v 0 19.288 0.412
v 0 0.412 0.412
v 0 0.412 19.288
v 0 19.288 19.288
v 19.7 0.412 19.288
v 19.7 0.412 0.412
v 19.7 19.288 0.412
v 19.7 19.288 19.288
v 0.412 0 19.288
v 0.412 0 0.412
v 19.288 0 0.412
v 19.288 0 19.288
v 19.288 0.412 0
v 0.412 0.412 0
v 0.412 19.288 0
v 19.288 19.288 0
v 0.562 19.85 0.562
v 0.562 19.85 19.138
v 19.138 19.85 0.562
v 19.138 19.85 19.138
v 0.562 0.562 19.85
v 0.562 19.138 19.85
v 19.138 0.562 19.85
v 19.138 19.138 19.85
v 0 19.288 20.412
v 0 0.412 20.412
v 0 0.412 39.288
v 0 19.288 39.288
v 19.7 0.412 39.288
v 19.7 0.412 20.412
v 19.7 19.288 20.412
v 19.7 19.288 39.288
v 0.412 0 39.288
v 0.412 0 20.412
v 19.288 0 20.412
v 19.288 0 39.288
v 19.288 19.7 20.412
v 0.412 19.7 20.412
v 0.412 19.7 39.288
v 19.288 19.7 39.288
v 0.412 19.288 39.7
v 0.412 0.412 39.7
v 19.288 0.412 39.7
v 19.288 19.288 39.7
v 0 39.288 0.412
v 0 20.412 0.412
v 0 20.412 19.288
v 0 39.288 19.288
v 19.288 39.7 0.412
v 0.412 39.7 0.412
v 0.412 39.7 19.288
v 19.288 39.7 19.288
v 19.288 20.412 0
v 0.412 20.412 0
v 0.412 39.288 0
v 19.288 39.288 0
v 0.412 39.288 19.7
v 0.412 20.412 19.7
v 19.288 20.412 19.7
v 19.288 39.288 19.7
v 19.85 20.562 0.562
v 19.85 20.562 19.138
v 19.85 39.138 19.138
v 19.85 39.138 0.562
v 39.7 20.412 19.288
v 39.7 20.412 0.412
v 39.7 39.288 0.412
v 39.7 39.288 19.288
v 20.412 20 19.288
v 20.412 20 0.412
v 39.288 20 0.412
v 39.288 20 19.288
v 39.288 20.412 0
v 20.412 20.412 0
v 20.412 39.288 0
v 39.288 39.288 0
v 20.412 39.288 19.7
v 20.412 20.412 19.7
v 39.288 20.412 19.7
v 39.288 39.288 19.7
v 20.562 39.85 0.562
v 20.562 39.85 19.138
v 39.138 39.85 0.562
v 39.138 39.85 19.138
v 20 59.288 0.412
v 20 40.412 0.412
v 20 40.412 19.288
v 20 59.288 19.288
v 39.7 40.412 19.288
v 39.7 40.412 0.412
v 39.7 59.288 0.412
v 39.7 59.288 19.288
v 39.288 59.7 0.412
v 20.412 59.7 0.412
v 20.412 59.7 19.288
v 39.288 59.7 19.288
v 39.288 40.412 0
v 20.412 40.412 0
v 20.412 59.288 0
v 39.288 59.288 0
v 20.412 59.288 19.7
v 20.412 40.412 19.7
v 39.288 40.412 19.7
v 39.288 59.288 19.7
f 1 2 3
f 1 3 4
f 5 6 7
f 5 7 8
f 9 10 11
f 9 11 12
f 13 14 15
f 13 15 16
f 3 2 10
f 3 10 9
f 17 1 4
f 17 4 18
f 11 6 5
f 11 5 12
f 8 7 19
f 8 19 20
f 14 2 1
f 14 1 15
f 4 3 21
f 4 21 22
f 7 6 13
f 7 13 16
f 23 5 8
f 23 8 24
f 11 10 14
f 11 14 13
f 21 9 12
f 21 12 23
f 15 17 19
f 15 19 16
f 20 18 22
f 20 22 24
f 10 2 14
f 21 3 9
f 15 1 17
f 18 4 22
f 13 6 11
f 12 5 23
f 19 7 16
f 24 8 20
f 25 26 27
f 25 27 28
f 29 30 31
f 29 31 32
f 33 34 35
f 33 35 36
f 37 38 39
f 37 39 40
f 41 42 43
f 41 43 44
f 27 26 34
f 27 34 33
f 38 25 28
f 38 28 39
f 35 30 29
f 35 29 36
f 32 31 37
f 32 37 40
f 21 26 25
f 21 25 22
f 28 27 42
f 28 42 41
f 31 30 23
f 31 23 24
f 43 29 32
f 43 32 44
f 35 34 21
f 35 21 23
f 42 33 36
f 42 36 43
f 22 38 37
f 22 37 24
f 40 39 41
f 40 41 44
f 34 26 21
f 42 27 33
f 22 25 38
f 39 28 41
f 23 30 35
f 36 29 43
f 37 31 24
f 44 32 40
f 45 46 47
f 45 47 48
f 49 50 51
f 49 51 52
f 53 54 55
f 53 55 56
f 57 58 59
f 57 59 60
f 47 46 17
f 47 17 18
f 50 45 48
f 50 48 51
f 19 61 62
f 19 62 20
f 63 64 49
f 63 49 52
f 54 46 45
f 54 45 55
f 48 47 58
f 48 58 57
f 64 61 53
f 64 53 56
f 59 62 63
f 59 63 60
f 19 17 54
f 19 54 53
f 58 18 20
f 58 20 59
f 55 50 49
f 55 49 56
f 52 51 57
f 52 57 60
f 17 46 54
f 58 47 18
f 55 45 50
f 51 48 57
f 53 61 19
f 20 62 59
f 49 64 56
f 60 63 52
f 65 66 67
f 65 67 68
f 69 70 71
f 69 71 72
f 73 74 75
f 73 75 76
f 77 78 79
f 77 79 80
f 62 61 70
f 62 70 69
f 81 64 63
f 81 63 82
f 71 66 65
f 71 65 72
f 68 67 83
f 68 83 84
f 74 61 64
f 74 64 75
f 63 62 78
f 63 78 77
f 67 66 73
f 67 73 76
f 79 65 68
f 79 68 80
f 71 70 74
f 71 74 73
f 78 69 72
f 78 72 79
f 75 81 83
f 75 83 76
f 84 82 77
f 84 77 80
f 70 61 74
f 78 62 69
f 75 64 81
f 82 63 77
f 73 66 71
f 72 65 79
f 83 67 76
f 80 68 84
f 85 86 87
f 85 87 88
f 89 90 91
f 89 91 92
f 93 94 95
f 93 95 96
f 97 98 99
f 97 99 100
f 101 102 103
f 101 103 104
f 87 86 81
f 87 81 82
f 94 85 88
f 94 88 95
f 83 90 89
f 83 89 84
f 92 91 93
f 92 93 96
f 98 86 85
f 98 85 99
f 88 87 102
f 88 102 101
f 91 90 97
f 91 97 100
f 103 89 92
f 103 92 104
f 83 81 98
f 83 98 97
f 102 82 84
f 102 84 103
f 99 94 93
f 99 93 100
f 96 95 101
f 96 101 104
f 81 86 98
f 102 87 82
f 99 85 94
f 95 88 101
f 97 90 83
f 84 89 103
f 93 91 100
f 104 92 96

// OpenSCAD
// Wongo piece 13: Twisted lightning. GPL-3.0.
// 20 mm lattice; 0.15 mm inward surface clearance; 0.5 mm chamfer.
// Mesh is identical to the STL; changing unit scales the complete finished mesh.
unit=20;
scale([unit/20,unit/20,unit/20]) polyhedron(points=[[0,19.28786797,0.41213203],[0,0.41213203,0.41213203],[0,0.41213203,19.28786797],[0,19.28786797,19.28786797],[19.7,0.41213203,19.28786797],[19.7,0.41213203,0.41213203],[19.7,19.28786797,0.41213203],[19.7,19.28786797,19.28786797],[0.41213203,0,19.28786797],[0.41213203,0,0.41213203],[19.28786797,0,0.41213203],[19.28786797,0,19.28786797],[19.28786797,0.41213203,0],[0.41213203,0.41213203,0],[0.41213203,19.28786797,0],[19.28786797,19.28786797,0],[0.56213203,19.85,0.56213203],[0.56213203,19.85,19.13786797],[19.13786797,19.85,0.56213203],[19.13786797,19.85,19.13786797],[0.56213203,0.56213203,19.85],[0.56213203,19.13786797,19.85],[19.13786797,0.56213203,19.85],[19.13786797,19.13786797,19.85],[0,19.28786797,20.41213203],[0,0.41213203,20.41213203],[0,0.41213203,39.28786797],[0,19.28786797,39.28786797],[19.7,0.41213203,39.28786797],[19.7,0.41213203,20.41213203],[19.7,19.28786797,20.41213203],[19.7,19.28786797,39.28786797],[0.41213203,0,39.28786797],[0.41213203,0,20.41213203],[19.28786797,0,20.41213203],[19.28786797,0,39.28786797],[19.28786797,19.7,20.41213203],[0.41213203,19.7,20.41213203],[0.41213203,19.7,39.28786797],[19.28786797,19.7,39.28786797],[0.41213203,19.28786797,39.7],[0.41213203,0.41213203,39.7],[19.28786797,0.41213203,39.7],[19.28786797,19.28786797,39.7],[0,39.28786797,0.41213203],[0,20.41213203,0.41213203],[0,20.41213203,19.28786797],[0,39.28786797,19.28786797],[19.28786797,39.7,0.41213203],[0.41213203,39.7,0.41213203],[0.41213203,39.7,19.28786797],[19.28786797,39.7,19.28786797],[19.28786797,20.41213203,0],[0.41213203,20.41213203,0],[0.41213203,39.28786797,0],[19.28786797,39.28786797,0],[0.41213203,39.28786797,19.7],[0.41213203,20.41213203,19.7],[19.28786797,20.41213203,19.7],[19.28786797,39.28786797,19.7],[19.85,20.56213203,0.56213203],[19.85,20.56213203,19.13786797],[19.85,39.13786797,19.13786797],[19.85,39.13786797,0.56213203],[39.7,20.41213203,19.28786797],[39.7,20.41213203,0.41213203],[39.7,39.28786797,0.41213203],[39.7,39.28786797,19.28786797],[20.41213203,20,19.28786797],[20.41213203,20,0.41213203],[39.28786797,20,0.41213203],[39.28786797,20,19.28786797],[39.28786797,20.41213203,0],[20.41213203,20.41213203,0],[20.41213203,39.28786797,0],[39.28786797,39.28786797,0],[20.41213203,39.28786797,19.7],[20.41213203,20.41213203,19.7],[39.28786797,20.41213203,19.7],[39.28786797,39.28786797,19.7],[20.56213203,39.85,0.56213203],[20.56213203,39.85,19.13786797],[39.13786797,39.85,0.56213203],[39.13786797,39.85,19.13786797],[20,59.28786797,0.41213203],[20,40.41213203,0.41213203],[20,40.41213203,19.28786797],[20,59.28786797,19.28786797],[39.7,40.41213203,19.28786797],[39.7,40.41213203,0.41213203],[39.7,59.28786797,0.41213203],[39.7,59.28786797,19.28786797],[39.28786797,59.7,0.41213203],[20.41213203,59.7,0.41213203],[20.41213203,59.7,19.28786797],[39.28786797,59.7,19.28786797],[39.28786797,40.41213203,0],[20.41213203,40.41213203,0],[20.41213203,59.28786797,0],[39.28786797,59.28786797,0],[20.41213203,59.28786797,19.7],[20.41213203,40.41213203,19.7],[39.28786797,40.41213203,19.7],[39.28786797,59.28786797,19.7]],faces=[[2,1,0],[3,2,0],[6,5,4],[7,6,4],[10,9,8],[11,10,8],[14,13,12],[15,14,12],[9,1,2],[8,9,2],[3,0,16],[17,3,16],[4,5,10],[11,4,10],[18,6,7],[19,18,7],[0,1,13],[14,0,13],[20,2,3],[21,20,3],[12,5,6],[15,12,6],[7,4,22],[23,7,22],[13,9,10],[12,13,10],[11,8,20],[22,11,20],[18,16,14],[15,18,14],[21,17,19],[23,21,19],[13,1,9],[8,2,20],[16,0,14],[21,3,17],[10,5,12],[22,4,11],[15,6,18],[19,7,23],[26,25,24],[27,26,24],[30,29,28],[31,30,28],[34,33,32],[35,34,32],[38,37,36],[39,38,36],[42,41,40],[43,42,40],[33,25,26],[32,33,26],[27,24,37],[38,27,37],[28,29,34],[35,28,34],[36,30,31],[39,36,31],[24,25,20],[21,24,20],[41,26,27],[40,41,27],[22,29,30],[23,22,30],[31,28,42],[43,31,42],[20,33,34],[22,20,34],[35,32,41],[42,35,41],[36,37,21],[23,36,21],[40,38,39],[43,40,39],[20,25,33],[32,26,41],[37,24,21],[40,27,38],[34,29,22],[42,28,35],[23,30,36],[39,31,43],[46,45,44],[47,46,44],[50,49,48],[51,50,48],[54,53,52],[55,54,52],[58,57,56],[59,58,56],[16,45,46],[17,16,46],[47,44,49],[50,47,49],[61,60,18],[19,61,18],[48,63,62],[51,48,62],[44,45,53],[54,44,53],[57,46,47],[56,57,47],[52,60,63],[55,52,63],[62,61,58],[59,62,58],[53,16,18],[52,53,18],[19,17,57],[58,19,57],[48,49,54],[55,48,54],[56,50,51],[59,56,51],[53,45,16],[17,46,57],[49,44,54],[56,47,50],[18,60,52],[58,61,19],[55,63,48],[51,62,59],[66,65,64],[67,66,64],[70,69,68],[71,70,68],[74,73,72],[75,74,72],[78,77,76],[79,78,76],[69,60,61],[68,69,61],[62,63,80],[81,62,80],[64,65,70],[71,64,70],[82,66,67],[83,82,67],[63,60,73],[74,63,73],[77,61,62],[76,77,62],[72,65,66],[75,72,66],[67,64,78],[79,67,78],[73,69,70],[72,73,70],[71,68,77],[78,71,77],[82,80,74],[75,82,74],[76,81,83],[79,76,83],[73,60,69],[68,61,77],[80,63,74],[76,62,81],[70,65,72],[78,64,71],[75,66,82],[83,67,79],[86,85,84],[87,86,84],[90,89,88],[91,90,88],[94,93,92],[95,94,92],[98,97,96],[99,98,96],[102,101,100],[103,102,100],[80,85,86],[81,80,86],[87,84,93],[94,87,93],[88,89,82],[83,88,82],[92,90,91],[95,92,91],[84,85,97],[98,84,97],[101,86,87],[100,101,87],[96,89,90],[99,96,90],[91,88,102],[103,91,102],[97,80,82],[96,97,82],[83,81,101],[102,83,101],[92,93,98],[99,92,98],[100,94,95],[103,100,95],[97,85,80],[81,86,101],[93,84,98],[100,87,94],[82,89,96],[102,88,83],[99,90,92],[95,91,103]],convexity=10);
